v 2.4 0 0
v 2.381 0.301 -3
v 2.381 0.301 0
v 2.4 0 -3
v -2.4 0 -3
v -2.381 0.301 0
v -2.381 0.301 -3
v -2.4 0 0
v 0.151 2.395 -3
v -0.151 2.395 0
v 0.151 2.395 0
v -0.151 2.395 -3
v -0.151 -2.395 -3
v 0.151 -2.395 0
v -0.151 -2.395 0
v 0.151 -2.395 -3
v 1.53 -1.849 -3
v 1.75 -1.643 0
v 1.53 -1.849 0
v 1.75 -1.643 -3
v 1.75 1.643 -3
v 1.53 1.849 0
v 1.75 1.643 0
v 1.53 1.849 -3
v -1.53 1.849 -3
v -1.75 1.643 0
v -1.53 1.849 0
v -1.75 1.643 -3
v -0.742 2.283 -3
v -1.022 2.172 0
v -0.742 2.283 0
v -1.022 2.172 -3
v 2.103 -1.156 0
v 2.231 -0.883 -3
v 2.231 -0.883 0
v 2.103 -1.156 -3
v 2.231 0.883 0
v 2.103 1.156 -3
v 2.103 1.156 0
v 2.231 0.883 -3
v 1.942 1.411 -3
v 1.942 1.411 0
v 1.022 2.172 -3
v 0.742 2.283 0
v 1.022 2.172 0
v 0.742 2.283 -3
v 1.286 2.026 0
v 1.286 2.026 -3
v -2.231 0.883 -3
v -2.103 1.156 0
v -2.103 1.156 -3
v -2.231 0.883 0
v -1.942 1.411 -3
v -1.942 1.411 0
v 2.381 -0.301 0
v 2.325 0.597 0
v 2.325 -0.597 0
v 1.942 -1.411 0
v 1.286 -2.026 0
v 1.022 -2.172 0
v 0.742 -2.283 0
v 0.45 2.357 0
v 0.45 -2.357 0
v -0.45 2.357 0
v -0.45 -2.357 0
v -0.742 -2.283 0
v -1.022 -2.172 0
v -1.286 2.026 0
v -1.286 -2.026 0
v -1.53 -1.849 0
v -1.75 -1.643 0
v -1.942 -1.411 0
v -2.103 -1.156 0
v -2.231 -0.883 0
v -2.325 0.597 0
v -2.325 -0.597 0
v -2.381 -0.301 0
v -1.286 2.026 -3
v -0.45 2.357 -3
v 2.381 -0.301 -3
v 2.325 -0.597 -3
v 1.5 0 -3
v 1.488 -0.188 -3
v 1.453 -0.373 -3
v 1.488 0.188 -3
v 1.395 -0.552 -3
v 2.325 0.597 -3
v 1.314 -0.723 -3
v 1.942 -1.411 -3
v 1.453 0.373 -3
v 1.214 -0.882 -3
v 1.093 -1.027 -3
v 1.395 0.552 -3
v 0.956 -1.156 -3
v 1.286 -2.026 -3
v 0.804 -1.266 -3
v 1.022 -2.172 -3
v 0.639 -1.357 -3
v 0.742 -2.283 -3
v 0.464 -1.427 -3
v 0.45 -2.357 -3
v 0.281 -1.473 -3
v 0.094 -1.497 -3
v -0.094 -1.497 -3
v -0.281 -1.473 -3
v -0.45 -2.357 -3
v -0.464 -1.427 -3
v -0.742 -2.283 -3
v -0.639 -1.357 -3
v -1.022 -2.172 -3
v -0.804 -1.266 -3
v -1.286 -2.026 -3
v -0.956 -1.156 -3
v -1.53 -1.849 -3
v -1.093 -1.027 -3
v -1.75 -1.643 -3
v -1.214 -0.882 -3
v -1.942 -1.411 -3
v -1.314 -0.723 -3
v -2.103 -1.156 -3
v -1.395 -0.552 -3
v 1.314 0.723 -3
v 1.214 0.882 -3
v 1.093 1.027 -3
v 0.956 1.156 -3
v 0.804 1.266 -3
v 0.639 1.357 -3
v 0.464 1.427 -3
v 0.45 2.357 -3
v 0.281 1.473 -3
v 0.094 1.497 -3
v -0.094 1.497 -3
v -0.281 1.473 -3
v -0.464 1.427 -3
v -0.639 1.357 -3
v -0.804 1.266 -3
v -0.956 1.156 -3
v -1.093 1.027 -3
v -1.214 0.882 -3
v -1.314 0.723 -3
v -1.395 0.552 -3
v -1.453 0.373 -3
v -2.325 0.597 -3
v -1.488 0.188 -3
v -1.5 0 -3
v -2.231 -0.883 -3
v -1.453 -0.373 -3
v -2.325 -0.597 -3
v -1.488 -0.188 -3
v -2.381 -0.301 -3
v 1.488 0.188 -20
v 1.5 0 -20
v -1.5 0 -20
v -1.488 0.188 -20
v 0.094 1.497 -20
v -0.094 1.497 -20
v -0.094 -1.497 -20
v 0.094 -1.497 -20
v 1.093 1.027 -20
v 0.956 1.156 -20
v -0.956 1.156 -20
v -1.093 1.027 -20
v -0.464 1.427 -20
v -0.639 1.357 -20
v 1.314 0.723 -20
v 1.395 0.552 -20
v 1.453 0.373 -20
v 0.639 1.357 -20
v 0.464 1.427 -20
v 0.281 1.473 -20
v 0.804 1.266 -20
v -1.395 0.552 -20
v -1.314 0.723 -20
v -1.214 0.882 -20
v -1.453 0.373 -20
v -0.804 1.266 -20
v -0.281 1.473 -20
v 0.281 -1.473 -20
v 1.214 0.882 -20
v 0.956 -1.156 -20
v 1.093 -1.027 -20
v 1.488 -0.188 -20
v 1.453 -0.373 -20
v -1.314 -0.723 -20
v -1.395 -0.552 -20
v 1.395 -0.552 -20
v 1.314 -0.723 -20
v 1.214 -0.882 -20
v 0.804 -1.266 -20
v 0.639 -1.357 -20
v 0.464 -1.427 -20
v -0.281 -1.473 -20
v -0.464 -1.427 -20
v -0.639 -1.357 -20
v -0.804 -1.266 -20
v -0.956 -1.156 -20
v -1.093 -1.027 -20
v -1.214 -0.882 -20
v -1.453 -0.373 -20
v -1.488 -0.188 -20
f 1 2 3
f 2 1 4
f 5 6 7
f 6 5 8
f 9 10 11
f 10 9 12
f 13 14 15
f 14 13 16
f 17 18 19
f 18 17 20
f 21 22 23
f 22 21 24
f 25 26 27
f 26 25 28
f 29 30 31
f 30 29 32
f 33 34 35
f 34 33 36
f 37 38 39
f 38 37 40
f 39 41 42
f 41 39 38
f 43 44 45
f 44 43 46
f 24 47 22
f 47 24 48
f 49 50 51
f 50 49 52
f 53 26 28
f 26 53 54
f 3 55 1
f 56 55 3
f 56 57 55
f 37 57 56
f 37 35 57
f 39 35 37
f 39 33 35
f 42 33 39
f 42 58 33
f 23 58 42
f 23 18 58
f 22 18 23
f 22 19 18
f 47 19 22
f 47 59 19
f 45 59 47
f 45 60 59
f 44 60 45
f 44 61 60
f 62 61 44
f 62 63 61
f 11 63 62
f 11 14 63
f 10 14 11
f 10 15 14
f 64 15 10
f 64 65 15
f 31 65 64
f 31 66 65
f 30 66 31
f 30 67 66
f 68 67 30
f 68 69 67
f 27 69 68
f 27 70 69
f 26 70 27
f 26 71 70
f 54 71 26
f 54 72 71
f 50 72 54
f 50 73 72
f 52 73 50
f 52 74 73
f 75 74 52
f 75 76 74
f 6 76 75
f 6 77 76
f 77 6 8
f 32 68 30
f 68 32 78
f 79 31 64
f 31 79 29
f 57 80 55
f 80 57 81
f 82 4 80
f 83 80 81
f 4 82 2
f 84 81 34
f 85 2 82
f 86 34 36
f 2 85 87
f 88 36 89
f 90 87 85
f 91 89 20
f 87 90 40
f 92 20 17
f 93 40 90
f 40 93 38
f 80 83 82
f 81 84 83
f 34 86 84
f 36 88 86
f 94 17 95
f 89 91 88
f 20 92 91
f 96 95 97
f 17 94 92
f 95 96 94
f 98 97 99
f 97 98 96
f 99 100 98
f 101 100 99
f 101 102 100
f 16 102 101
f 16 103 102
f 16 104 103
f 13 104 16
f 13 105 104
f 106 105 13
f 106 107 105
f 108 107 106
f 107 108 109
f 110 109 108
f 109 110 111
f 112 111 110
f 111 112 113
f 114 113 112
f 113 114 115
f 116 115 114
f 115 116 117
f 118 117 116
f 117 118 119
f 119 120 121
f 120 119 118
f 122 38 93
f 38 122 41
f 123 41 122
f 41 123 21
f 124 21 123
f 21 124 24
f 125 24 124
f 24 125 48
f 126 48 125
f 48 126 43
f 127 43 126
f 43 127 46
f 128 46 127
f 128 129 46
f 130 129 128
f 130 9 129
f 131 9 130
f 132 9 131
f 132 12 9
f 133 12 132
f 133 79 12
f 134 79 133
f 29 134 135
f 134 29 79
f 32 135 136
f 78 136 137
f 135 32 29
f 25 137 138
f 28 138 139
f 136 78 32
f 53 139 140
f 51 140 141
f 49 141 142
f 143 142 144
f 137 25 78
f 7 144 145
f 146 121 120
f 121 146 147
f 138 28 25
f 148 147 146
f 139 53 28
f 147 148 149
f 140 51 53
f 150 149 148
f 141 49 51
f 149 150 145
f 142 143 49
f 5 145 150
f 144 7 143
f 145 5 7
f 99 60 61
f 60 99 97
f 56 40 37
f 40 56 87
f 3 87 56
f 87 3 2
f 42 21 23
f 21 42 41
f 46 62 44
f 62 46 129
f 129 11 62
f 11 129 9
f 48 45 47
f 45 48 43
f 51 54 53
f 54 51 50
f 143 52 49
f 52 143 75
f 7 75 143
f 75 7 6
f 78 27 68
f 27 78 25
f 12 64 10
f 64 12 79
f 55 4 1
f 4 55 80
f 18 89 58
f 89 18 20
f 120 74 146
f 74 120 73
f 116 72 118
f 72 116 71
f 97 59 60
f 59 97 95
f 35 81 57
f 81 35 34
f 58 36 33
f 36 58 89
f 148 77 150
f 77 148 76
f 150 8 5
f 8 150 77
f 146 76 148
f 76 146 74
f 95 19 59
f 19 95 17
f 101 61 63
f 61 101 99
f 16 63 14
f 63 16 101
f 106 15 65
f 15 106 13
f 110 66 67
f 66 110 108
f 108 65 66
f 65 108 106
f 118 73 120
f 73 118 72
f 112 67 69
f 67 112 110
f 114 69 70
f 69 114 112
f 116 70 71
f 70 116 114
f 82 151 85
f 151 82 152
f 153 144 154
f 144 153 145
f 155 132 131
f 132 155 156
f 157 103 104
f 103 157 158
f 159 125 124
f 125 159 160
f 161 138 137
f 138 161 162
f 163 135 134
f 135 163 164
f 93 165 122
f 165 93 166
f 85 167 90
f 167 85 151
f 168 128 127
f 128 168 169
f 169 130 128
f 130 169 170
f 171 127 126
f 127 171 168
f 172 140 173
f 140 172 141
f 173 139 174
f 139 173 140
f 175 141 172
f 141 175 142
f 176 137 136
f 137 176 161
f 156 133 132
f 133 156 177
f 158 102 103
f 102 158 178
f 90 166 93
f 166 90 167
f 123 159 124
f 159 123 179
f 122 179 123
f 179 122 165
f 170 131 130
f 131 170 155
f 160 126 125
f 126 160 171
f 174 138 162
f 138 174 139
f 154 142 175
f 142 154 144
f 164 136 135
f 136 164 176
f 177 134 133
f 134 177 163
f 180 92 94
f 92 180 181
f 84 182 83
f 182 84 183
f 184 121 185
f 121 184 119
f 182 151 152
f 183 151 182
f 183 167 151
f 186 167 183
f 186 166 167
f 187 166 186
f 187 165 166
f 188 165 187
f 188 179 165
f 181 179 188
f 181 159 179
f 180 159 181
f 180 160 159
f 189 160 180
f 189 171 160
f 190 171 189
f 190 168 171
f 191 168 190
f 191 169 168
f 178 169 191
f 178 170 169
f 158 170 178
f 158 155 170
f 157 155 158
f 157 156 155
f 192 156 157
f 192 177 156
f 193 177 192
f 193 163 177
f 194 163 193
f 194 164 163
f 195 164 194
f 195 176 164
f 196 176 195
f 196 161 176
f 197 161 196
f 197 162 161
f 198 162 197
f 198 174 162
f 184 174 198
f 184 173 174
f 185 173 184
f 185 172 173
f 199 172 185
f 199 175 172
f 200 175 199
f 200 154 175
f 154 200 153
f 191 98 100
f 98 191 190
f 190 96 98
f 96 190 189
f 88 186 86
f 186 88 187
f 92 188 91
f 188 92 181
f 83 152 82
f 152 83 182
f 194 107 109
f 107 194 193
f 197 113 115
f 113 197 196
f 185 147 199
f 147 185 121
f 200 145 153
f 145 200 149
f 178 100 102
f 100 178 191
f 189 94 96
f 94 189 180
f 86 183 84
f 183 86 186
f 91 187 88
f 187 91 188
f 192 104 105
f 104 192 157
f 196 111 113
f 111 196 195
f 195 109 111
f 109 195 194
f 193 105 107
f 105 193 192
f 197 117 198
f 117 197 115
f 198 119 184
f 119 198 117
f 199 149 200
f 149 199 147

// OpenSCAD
$fn = 50;


difference() {
	union() {
		translate(v = [0, 0, -3]) {
			rotate(a = [0, 0, 0]) {
				cylinder(h = 3, r1 = 2.4000000000, r2 = 2.4000000000);
			}
		}
		translate(v = [0, 0, -20]) {
			rotate(a = [0, 0, 0]) {
				cylinder(h = 20, r = 1.5000000000);
			}
		}
	}
	union();
}
